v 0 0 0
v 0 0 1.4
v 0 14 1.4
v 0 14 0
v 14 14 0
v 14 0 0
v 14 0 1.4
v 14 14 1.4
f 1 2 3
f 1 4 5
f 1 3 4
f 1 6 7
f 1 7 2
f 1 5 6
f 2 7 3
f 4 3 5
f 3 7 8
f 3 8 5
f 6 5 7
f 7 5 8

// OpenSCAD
/* Warning, this is a very basic generator with a lot of approximation 
input data : [LQFP, 2HB, 14x14x1.4mm, 120, , A, C04-21005A]
generated by com.zoubworld.electronics.cad.model3d.Basic
Date : Sun Feb 15 10:50:49 CET 2026
*/

//body
color("black")
translate([0,0,0])
cube([14.0,14.0,1.4], center=false);
